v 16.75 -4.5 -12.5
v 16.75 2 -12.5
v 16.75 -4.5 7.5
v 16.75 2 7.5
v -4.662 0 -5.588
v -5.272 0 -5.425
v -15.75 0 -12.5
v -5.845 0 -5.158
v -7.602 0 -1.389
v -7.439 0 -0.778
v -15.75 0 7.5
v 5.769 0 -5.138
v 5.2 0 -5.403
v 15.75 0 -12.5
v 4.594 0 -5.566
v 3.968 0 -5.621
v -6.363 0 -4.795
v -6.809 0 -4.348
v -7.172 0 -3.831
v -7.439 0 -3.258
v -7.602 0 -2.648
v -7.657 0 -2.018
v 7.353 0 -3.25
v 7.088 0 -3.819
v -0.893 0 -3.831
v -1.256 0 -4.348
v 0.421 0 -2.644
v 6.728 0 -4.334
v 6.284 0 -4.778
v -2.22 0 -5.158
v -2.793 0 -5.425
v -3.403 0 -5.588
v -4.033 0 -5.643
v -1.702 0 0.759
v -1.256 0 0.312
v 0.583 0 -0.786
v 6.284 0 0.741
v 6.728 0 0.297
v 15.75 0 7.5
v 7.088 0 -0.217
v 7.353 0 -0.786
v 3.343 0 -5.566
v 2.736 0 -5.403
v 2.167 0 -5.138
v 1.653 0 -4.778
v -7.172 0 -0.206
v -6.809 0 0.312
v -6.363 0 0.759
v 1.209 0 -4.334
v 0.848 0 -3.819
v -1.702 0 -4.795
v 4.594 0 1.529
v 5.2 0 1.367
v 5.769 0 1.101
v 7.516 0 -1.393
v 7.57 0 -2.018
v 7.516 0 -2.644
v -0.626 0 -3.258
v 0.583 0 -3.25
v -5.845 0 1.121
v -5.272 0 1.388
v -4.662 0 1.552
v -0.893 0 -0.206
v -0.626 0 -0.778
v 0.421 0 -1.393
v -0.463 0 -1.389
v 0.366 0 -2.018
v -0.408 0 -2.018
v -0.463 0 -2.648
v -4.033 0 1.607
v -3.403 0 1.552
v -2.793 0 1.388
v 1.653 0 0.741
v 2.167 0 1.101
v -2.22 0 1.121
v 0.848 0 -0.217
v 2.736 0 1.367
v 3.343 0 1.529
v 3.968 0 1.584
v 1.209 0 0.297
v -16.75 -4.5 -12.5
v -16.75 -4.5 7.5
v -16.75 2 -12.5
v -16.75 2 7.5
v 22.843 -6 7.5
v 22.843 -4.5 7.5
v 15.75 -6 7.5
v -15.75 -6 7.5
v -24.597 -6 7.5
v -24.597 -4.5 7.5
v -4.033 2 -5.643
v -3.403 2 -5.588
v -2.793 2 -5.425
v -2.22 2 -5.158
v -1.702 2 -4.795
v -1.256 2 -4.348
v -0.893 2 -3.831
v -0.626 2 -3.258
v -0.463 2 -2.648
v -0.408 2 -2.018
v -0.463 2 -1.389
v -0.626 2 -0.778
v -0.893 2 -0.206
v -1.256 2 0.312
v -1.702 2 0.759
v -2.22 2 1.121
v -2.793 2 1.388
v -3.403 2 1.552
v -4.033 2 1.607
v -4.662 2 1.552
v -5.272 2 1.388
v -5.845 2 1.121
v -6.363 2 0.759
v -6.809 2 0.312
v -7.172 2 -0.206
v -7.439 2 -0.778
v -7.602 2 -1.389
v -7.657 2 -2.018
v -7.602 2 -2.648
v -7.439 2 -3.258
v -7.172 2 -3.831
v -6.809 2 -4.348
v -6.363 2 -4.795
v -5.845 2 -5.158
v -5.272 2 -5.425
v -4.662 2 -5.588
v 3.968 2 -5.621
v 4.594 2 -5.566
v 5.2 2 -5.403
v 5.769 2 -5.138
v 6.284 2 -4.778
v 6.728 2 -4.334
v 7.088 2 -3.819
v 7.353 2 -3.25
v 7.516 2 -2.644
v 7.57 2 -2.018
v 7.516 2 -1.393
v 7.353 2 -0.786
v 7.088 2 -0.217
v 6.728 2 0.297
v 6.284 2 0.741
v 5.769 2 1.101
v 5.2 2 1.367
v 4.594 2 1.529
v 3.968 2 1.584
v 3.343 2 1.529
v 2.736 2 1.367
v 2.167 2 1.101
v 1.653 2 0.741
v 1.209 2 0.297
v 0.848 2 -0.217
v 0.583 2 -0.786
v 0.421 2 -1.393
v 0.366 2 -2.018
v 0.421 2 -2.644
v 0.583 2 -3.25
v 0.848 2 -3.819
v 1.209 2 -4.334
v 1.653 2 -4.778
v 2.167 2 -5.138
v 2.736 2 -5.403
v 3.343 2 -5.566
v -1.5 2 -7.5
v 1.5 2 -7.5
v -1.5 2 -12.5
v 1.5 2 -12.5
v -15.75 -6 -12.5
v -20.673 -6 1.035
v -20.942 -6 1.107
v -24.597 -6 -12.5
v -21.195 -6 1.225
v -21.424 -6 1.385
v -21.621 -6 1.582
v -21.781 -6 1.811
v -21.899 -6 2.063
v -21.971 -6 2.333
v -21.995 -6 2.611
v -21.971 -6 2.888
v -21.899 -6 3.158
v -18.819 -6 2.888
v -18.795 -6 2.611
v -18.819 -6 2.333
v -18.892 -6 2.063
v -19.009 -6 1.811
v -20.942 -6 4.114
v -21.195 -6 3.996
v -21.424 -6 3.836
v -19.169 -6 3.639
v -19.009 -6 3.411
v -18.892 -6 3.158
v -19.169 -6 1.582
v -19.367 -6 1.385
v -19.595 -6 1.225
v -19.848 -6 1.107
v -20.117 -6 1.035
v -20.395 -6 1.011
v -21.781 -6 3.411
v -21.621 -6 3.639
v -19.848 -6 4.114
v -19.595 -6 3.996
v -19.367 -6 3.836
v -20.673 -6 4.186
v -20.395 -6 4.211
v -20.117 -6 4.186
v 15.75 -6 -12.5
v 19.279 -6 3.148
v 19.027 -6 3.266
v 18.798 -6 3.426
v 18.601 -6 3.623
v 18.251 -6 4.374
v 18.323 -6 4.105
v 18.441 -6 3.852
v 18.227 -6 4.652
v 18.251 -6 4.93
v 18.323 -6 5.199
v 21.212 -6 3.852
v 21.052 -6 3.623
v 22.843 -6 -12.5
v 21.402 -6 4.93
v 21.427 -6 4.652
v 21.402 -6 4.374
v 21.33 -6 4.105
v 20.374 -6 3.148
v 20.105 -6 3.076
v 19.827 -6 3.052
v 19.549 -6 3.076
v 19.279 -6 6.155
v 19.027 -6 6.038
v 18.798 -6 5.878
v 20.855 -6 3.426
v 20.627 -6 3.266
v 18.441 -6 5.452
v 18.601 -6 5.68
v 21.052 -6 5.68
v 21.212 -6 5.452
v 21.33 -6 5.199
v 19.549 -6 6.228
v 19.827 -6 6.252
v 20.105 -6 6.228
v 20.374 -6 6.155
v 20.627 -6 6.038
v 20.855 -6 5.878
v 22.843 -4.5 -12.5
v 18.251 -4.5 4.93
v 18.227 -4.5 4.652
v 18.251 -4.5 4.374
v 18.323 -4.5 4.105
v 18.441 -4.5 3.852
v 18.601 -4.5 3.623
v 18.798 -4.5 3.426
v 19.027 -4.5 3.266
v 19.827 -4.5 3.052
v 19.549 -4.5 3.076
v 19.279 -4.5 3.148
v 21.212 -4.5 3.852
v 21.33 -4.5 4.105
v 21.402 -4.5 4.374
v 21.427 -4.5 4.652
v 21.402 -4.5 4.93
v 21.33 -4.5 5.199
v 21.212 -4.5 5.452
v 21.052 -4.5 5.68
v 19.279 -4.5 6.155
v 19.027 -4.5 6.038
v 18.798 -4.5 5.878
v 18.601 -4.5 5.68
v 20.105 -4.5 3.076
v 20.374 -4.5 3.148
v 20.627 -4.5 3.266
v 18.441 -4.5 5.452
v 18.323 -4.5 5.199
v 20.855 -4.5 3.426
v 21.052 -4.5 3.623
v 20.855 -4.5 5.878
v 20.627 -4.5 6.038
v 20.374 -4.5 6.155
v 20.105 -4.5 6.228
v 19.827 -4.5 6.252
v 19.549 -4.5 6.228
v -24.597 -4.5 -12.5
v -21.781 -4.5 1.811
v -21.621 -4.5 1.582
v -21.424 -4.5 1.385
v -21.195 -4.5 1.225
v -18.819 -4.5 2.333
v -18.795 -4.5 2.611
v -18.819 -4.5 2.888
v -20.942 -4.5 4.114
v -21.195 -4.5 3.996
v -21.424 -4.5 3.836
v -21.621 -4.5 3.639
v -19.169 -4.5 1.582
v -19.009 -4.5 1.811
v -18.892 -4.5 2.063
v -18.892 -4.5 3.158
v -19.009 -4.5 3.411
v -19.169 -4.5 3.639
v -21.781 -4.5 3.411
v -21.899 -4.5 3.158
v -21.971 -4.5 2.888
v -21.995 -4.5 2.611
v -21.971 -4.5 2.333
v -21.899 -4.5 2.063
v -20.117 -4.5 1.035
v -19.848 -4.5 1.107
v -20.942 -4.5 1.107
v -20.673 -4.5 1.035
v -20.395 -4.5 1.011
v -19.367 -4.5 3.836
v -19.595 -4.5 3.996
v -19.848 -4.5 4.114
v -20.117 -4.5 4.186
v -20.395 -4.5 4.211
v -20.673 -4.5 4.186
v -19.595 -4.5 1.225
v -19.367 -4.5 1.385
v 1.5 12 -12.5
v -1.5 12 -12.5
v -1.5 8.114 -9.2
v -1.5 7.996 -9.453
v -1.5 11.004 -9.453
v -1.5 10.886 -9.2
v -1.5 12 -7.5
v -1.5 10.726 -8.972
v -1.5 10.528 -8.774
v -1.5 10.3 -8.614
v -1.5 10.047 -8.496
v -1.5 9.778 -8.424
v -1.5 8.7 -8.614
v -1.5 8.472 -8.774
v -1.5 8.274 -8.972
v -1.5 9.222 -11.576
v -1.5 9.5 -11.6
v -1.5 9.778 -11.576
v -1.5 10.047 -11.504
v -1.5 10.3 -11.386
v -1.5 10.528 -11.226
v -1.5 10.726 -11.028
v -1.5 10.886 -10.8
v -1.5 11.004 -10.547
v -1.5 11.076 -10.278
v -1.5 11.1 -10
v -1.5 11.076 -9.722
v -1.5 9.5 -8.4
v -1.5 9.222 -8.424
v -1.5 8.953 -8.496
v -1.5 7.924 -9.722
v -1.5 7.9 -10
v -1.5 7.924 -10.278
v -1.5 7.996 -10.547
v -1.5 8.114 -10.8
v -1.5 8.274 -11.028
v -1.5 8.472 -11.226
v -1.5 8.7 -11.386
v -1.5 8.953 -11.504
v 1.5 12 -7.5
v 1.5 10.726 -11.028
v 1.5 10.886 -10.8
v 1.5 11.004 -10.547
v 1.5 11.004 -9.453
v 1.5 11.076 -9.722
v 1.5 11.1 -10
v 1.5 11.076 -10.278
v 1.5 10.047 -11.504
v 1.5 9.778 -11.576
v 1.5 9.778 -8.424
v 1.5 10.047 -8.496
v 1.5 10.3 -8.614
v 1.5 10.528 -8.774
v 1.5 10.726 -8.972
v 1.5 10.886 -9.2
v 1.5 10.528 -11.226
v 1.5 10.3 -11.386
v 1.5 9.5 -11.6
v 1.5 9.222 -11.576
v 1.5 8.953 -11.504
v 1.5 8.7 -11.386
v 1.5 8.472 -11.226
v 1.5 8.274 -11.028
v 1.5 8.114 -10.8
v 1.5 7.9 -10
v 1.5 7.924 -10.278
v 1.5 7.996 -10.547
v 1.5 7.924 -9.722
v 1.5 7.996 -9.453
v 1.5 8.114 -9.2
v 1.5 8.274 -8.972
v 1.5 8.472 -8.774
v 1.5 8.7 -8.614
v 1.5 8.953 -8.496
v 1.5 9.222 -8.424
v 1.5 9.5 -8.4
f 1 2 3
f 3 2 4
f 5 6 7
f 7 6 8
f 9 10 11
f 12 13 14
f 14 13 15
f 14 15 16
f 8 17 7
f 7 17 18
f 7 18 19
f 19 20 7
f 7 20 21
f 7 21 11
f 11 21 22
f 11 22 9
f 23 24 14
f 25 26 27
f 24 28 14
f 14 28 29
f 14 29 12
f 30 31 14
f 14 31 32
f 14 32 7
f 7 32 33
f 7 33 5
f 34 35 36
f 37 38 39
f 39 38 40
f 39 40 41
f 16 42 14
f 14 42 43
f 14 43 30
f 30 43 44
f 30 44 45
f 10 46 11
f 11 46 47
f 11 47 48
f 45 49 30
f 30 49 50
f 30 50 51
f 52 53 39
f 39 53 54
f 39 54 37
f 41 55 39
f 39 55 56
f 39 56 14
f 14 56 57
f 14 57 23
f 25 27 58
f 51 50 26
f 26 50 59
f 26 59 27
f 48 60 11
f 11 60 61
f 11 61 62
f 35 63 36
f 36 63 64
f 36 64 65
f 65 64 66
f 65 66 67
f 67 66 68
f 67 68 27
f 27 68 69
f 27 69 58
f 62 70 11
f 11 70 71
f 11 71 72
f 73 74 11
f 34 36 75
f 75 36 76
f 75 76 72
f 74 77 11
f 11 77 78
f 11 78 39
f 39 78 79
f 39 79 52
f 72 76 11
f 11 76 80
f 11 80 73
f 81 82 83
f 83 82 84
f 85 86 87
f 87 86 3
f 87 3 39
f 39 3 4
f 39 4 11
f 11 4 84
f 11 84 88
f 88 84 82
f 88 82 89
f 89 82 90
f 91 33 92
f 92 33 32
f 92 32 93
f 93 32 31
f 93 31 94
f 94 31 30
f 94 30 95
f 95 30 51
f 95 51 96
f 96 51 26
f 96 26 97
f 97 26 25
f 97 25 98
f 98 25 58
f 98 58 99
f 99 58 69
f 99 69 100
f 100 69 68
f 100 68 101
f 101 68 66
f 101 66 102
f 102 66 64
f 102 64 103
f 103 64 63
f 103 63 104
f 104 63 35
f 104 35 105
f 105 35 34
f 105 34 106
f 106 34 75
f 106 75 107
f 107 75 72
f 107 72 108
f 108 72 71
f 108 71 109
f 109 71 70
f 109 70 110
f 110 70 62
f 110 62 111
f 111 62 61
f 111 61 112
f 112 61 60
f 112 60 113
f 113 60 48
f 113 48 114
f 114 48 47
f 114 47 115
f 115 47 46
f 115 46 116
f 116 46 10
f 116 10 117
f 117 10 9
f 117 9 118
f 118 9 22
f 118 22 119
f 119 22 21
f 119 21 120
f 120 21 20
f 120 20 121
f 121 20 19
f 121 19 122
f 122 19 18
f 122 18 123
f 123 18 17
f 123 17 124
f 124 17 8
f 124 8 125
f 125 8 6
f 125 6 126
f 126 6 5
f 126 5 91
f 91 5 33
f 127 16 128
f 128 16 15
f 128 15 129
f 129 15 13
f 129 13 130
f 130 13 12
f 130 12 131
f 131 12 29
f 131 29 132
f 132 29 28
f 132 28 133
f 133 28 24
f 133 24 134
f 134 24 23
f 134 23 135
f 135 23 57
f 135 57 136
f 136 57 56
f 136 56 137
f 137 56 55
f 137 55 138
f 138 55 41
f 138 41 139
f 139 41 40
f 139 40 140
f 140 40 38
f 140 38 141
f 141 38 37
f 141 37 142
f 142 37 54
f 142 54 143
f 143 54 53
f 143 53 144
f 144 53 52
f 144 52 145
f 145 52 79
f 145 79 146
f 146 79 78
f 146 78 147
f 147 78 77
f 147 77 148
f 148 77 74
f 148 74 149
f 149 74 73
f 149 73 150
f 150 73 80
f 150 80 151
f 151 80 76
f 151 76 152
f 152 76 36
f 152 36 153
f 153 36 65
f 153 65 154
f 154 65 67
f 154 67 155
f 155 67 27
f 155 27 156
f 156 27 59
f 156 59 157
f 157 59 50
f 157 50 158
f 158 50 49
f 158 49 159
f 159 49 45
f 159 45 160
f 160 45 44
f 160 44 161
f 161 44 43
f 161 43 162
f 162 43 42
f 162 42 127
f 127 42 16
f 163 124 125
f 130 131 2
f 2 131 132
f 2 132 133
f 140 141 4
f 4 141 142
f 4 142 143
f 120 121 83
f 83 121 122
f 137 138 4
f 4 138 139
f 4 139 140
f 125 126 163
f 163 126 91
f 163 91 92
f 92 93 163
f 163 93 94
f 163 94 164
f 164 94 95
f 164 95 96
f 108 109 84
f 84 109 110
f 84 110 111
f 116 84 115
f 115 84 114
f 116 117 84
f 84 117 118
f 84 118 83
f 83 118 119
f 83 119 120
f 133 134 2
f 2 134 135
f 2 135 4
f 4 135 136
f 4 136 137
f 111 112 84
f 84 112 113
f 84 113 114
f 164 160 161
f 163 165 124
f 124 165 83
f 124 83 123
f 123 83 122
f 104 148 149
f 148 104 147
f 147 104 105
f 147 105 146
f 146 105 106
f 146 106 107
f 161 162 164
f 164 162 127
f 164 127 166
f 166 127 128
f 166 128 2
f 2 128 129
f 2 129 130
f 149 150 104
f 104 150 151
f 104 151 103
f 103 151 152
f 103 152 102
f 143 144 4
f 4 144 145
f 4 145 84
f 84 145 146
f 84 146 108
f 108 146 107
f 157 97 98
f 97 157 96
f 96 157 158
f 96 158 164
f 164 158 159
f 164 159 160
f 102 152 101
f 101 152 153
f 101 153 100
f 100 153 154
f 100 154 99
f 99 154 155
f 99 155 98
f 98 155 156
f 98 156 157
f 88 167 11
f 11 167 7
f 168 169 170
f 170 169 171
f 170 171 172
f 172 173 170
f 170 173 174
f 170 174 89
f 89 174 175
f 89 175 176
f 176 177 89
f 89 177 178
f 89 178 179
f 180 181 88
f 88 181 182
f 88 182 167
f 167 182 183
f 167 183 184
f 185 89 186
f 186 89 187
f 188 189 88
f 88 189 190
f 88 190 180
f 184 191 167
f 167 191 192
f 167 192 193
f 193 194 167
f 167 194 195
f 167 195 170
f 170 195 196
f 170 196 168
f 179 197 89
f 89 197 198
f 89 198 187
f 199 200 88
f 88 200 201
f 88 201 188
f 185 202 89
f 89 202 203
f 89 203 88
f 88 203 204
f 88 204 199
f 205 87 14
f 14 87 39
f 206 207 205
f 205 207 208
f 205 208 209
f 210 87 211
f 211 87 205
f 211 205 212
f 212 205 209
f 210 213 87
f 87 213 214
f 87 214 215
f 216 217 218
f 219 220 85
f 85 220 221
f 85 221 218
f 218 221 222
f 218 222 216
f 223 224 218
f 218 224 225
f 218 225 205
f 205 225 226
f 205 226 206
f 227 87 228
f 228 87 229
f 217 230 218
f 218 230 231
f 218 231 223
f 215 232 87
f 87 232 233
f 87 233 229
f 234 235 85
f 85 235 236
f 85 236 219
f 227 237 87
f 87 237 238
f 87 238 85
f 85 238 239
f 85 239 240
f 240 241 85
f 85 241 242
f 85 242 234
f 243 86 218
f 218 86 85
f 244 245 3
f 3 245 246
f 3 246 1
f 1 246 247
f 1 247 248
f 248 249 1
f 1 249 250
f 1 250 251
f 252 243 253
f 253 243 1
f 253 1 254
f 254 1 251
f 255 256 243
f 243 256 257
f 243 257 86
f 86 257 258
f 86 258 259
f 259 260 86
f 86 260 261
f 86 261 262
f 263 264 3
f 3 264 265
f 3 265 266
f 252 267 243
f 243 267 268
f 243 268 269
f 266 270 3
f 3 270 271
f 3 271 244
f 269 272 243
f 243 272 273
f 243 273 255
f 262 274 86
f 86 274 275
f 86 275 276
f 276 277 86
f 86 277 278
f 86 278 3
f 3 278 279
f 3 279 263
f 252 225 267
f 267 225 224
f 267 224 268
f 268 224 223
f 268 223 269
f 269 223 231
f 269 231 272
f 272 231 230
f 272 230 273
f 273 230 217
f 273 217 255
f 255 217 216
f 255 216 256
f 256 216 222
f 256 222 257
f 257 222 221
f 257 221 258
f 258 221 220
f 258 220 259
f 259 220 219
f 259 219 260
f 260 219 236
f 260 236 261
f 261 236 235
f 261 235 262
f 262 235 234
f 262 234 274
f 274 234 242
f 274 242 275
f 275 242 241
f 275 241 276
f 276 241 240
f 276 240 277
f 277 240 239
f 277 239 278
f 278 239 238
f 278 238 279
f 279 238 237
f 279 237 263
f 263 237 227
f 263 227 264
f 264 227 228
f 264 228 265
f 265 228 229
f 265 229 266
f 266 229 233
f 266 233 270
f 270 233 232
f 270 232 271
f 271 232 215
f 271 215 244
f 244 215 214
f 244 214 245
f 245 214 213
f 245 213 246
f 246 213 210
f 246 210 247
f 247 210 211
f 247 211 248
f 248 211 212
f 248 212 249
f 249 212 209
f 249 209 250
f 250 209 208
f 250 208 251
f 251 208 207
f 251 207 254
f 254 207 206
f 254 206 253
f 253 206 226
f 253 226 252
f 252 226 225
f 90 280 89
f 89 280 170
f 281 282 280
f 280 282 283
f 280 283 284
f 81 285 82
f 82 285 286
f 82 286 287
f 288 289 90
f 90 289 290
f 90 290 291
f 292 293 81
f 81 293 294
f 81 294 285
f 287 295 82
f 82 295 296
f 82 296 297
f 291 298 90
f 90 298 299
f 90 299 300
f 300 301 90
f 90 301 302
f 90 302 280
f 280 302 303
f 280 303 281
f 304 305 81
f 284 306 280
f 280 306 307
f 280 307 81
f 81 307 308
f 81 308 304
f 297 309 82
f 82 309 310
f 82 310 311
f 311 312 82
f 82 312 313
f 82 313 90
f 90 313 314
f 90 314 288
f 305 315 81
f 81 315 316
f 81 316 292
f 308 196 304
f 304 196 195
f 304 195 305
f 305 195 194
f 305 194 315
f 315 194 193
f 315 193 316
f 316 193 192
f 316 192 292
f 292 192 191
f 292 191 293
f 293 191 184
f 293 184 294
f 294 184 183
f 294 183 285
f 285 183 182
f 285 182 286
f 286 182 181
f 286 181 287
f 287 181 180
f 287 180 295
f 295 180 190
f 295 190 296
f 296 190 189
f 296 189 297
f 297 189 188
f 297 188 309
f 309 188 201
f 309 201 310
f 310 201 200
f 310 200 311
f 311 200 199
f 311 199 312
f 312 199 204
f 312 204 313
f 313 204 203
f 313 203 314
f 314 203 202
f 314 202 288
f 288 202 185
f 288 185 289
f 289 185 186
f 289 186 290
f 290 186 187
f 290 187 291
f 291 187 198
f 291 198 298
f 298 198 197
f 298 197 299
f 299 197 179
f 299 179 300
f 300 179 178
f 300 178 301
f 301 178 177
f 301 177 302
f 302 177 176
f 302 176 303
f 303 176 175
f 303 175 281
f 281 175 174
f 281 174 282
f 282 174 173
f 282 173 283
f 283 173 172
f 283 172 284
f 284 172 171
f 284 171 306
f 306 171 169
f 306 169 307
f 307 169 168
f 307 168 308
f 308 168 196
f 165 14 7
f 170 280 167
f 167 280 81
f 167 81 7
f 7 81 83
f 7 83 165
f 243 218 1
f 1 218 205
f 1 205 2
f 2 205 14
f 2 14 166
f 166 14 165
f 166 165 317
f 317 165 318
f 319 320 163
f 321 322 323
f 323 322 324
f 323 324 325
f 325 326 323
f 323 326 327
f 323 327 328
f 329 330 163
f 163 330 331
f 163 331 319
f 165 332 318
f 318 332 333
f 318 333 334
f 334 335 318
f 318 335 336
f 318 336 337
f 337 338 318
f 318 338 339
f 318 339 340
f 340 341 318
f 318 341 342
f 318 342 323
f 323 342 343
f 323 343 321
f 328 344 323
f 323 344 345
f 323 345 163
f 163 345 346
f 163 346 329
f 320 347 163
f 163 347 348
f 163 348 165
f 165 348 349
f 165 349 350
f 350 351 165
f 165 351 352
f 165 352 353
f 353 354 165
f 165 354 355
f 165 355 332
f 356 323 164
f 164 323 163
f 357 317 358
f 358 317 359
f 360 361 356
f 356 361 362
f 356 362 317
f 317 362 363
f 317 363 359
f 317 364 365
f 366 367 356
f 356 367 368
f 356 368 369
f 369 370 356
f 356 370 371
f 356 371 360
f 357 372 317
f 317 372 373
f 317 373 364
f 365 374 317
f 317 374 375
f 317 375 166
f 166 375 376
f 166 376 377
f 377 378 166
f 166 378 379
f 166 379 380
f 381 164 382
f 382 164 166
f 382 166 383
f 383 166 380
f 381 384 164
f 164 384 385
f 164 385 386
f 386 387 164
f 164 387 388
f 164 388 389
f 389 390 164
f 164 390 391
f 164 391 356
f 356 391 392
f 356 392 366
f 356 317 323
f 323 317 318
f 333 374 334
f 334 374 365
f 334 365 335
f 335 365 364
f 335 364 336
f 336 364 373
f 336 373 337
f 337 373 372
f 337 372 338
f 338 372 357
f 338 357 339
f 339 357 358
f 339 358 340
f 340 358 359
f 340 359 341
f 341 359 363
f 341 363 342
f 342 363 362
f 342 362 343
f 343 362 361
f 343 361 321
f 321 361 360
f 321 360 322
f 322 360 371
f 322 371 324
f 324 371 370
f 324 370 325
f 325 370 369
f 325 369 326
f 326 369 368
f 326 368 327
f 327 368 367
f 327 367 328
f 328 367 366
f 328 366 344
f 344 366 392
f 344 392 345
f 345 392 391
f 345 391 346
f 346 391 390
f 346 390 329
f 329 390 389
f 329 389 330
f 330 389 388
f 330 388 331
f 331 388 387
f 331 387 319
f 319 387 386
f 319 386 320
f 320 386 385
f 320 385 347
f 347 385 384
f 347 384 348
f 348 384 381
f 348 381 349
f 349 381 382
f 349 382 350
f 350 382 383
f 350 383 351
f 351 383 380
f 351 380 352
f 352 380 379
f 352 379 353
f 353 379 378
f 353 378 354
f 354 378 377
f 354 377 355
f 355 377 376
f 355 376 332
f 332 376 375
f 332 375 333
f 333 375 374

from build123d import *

# Parameters (mm, degrees)
SKETCH_1_W          = 33.5
SKETCH_1_H          = 15
SKETCH_1_R          = 3.624978968
SKETCH_1_R_2        = 3.60228421
EXTRUDE_1_DEPTH     = 2
SKETCH_1_3_W        = 1
SKETCH_1_3_H        = 15
EXTRUDE_2_DEPTH     = 6
SKETCH_2_R          = 1.6
EXTRUDE_3_DEPTH     = 1.5
EXTRUDE_4_DEPTH     = 5
SKETCH_4_W          = 3
SKETCH_4_H          = 5
EXTRUDE_5_DEPTH     = 10
SKETCH_5_R          = 1.6
CUT_EXTRUDE_1_DEPTH = 10


with BuildPart() as part:
    # 草图1 → 凸台-拉伸1 (new body)
    with BuildSketch(Plane(origin=(0, 0, 0), x_dir=(1, 0, 0), z_dir=(0, 1, 0))):
        Rectangle(SKETCH_1_W, SKETCH_1_H)
        with Locations((-4.032505812, 2.018294601)):
            Circle(SKETCH_1_R, mode=Mode.SUBTRACT)
        with Locations((3.968074022, 2.018294601)):
            Circle(SKETCH_1_R_2, mode=Mode.SUBTRACT)
    extrude(amount=EXTRUDE_1_DEPTH)

    # 草图1<3> → 凸台-拉伸2 (add)
    with BuildSketch(Plane(origin=(0, 0, 0), x_dir=(1, 0, 0), z_dir=(0, 1, 0))):
        with Locations((16.25, 0)):
            Rectangle(SKETCH_1_3_W, SKETCH_1_3_H)
        with Locations((-16.25, 0)):
            Rectangle(SKETCH_1_3_W, SKETCH_1_3_H)
    extrude(amount=-EXTRUDE_2_DEPTH)

    # 草图2 → 凸台-拉伸3 (add)
    # profile 1 of 2: a face of its own
    with BuildSketch(Plane.XZ.offset(6)):
        Polygon((-16.75, -7.5), (-24.597168746, -7.5), (-24.597168746, 0), (-24.597168746, 7.5), (-16.75, 7.5), (-16.75, 0), align=None)
        with Locations((-20.395135673, 2.61052916)):
            Circle(SKETCH_2_R, mode=Mode.SUBTRACT)
    # profile 2 of 2: a face of its own
    with BuildSketch(Plane.XZ.offset(6)):
        Polygon((16.75, 7.5), (22.842739313, 7.5), (22.842739313, 0), (22.842739313, -7.5), (16.75, -7.5), (16.75, 0), align=None)
        with Locations((19.826698125, 4.651883457)):
            Circle(SKETCH_2_R, mode=Mode.SUBTRACT)
    extrude(amount=-EXTRUDE_3_DEPTH)

    # 草图3 → 凸台-拉伸4 (add)
    with BuildSketch(Plane(origin=(0, 0, -7.5), x_dir=(-1, 0, 0), z_dir=(0, 0, -1))):
        Polygon((-16.75, 2), (-16.75, -4.5), (-22.842739313, -4.5), (-22.842739313, -6), (-15.75, -6), (-15.75, 0), (15.75, 0), (15.75, -6), (24.597168746, -6), (24.597168746, -4.5), (16.75, -4.5), (16.75, 2), align=None)
    extrude(amount=EXTRUDE_4_DEPTH)

    # 草图4 → 凸台-拉伸5 (add)
    with BuildSketch(Plane(origin=(0, 2, 0), x_dir=(1, 0, 0), z_dir=(0, 1, 0))):
        with Locations((0, 10)):
            Rectangle(SKETCH_4_W, SKETCH_4_H)
    extrude(amount=EXTRUDE_5_DEPTH)

    # 草图5 → 切除-拉伸1 (cut)
    with BuildSketch(Plane(origin=(1.5, 0, 0), x_dir=(0, 0, -1), z_dir=(1, 0, 0))):
        with Locations((10, 9.5)):
            Circle(SKETCH_5_R)
    extrude(amount=-CUT_EXTRUDE_1_DEPTH, mode=Mode.SUBTRACT)


solid = part.part
